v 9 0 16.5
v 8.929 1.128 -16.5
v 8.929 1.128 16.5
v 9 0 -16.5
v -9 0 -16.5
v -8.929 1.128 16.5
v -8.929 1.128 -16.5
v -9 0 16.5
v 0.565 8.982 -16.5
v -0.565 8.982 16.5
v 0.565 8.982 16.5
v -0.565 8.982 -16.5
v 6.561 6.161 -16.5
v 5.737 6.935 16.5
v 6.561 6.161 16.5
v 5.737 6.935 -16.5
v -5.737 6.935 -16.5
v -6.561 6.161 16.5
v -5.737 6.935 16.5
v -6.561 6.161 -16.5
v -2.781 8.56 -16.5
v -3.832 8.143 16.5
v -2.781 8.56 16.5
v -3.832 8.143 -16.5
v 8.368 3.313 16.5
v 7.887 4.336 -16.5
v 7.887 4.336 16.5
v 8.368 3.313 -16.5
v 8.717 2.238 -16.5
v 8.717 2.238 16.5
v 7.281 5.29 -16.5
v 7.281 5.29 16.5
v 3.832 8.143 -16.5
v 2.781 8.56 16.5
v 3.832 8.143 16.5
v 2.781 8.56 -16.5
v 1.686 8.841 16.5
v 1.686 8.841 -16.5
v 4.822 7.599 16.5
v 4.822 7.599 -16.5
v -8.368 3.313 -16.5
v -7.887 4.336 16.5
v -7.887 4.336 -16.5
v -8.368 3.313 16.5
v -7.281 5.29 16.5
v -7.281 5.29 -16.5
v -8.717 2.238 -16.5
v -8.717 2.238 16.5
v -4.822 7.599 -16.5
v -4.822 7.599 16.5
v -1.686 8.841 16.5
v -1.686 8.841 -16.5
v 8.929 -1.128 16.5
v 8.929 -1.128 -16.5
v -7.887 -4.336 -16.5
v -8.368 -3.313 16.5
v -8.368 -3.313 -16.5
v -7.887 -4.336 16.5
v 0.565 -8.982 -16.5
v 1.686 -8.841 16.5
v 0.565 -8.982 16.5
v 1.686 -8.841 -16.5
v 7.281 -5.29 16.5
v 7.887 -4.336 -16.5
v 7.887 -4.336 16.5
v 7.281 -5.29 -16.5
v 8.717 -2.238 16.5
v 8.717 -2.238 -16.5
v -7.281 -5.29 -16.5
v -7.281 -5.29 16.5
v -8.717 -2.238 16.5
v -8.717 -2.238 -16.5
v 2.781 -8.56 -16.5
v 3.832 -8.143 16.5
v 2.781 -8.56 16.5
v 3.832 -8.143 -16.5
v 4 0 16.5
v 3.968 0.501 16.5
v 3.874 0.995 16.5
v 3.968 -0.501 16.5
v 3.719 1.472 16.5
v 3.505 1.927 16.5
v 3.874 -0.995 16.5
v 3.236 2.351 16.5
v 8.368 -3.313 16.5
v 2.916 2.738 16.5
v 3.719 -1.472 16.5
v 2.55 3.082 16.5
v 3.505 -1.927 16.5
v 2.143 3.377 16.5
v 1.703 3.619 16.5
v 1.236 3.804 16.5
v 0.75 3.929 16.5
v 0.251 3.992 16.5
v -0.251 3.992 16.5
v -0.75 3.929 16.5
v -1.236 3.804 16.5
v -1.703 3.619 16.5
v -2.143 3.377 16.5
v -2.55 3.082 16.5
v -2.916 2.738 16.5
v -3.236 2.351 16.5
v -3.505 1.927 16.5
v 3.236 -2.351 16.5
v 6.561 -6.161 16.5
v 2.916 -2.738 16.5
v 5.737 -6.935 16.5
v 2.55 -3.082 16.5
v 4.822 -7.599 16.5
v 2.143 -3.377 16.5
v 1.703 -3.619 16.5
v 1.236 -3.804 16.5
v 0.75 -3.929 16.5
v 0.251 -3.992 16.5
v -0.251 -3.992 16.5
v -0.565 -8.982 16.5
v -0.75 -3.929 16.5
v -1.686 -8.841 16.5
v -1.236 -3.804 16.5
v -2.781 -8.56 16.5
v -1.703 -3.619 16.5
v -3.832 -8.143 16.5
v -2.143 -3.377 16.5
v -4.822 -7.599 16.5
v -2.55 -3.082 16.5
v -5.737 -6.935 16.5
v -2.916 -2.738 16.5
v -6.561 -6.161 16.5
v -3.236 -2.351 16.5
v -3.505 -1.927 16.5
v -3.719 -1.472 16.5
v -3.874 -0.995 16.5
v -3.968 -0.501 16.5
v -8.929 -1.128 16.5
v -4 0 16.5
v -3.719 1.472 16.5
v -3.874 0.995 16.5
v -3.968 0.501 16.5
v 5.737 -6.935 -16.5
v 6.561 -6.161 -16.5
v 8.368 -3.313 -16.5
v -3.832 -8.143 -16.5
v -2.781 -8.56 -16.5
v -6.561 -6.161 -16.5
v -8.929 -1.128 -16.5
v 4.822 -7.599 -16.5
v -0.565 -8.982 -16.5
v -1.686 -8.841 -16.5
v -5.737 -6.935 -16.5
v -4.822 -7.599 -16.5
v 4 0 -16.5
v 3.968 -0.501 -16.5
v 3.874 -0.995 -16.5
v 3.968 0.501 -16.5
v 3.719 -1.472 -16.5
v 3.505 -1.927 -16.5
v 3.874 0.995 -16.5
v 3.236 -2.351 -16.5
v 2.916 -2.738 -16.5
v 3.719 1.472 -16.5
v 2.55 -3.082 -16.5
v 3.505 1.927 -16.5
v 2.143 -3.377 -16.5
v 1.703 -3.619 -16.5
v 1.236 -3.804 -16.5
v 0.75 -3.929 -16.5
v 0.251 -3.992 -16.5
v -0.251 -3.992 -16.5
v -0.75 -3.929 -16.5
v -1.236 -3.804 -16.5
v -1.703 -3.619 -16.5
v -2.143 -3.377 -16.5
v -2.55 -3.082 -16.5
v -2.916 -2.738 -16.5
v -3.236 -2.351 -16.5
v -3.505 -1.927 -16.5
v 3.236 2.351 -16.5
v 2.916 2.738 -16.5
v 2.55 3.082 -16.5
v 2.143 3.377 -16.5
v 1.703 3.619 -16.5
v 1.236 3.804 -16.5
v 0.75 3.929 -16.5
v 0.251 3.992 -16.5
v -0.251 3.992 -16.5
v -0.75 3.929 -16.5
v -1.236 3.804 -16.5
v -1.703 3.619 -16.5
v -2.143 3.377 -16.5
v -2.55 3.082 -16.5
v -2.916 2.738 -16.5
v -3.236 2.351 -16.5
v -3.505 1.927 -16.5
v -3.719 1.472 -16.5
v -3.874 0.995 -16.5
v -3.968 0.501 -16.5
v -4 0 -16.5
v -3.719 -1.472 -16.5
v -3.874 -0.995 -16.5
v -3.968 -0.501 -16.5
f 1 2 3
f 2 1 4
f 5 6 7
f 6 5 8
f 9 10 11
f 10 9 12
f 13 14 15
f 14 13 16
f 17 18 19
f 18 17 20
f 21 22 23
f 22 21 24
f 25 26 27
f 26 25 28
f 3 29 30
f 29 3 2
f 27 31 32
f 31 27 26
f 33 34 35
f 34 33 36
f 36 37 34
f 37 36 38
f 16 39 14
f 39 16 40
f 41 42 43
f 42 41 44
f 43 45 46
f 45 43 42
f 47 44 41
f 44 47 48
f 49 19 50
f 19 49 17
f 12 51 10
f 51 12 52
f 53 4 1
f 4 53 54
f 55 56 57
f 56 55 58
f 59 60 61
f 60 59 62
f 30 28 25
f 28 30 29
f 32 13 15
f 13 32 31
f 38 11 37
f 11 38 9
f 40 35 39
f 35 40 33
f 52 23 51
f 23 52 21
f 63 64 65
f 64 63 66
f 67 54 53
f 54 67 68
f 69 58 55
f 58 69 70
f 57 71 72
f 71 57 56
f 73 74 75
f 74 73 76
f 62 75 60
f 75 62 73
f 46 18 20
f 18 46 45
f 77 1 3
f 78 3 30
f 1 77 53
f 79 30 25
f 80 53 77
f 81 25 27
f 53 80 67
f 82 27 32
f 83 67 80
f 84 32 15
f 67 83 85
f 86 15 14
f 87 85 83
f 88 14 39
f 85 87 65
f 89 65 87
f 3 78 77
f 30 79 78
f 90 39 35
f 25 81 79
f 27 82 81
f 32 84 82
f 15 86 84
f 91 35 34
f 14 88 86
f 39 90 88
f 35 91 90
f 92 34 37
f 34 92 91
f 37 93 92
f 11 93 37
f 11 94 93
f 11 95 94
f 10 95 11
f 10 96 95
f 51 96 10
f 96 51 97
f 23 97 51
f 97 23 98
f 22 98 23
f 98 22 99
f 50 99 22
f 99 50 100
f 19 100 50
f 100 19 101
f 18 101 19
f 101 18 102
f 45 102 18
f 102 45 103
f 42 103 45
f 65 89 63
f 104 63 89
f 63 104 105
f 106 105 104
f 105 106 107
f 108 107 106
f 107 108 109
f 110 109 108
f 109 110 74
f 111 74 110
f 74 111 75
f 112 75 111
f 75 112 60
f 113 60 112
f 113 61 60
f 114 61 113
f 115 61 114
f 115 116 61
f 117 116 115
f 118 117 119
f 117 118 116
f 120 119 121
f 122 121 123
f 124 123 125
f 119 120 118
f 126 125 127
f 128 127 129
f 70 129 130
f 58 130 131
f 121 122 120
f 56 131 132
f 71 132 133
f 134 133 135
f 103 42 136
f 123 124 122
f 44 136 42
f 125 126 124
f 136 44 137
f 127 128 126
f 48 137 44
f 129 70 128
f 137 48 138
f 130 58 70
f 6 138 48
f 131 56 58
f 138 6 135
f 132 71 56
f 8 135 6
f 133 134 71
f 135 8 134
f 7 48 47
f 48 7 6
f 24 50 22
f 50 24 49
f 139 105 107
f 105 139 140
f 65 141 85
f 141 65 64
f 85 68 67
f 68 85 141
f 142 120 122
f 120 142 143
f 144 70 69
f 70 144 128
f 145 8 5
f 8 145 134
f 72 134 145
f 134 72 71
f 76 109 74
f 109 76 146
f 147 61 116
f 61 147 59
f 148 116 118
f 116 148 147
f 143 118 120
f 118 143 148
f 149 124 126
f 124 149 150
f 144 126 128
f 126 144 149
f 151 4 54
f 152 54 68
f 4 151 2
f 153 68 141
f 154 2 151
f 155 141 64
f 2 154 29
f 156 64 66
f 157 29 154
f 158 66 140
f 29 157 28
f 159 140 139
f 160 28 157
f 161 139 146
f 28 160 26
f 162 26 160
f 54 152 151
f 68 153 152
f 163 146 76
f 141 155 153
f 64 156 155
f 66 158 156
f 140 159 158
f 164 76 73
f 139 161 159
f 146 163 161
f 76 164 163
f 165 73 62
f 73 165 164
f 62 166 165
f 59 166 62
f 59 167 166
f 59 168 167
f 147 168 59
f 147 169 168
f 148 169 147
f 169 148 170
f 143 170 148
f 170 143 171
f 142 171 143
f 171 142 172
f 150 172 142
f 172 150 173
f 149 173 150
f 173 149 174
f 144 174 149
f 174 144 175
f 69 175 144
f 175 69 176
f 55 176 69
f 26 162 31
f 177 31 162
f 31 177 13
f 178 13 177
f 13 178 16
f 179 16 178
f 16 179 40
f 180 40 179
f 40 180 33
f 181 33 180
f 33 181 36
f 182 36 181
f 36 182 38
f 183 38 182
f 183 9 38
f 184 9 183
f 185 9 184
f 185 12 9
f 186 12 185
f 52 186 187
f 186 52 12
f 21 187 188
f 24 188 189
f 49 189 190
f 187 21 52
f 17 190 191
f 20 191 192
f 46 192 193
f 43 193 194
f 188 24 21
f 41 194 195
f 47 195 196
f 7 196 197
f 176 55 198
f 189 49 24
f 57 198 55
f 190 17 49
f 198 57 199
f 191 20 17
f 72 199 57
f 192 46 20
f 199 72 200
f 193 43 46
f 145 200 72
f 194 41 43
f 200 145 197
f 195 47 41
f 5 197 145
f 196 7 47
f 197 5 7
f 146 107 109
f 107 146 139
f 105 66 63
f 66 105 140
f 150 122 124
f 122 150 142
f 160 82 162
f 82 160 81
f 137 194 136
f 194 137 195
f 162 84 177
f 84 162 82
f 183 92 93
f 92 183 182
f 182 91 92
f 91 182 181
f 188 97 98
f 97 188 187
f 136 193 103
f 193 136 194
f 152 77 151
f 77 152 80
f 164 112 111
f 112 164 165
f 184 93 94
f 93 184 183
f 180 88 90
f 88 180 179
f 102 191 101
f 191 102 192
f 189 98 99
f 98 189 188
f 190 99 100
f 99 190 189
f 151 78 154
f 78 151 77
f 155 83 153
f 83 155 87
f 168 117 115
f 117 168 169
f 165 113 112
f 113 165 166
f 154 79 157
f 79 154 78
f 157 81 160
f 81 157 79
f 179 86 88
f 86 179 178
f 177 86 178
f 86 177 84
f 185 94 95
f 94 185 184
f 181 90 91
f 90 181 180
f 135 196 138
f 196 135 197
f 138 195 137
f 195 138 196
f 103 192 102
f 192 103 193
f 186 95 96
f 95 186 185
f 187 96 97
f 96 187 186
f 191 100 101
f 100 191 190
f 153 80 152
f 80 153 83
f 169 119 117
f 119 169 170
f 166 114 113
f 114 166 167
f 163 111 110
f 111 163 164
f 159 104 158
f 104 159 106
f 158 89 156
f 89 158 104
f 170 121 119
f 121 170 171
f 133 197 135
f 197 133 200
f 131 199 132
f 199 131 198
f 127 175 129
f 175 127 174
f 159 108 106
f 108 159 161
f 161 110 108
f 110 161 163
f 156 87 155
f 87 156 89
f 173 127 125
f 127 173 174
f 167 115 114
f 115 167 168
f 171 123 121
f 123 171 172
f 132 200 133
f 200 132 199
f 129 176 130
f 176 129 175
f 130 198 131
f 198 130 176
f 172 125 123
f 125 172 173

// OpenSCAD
$fn = 50;


difference() {
	union() {
		translate(v = [0, 0, -16.5000000000]) {
			cylinder(h = 33, r = 9.0000000000);
		}
	}
	union() {
		translate(v = [0, 0, -100.0000000000]) {
			cylinder(h = 200, r = 4.0000000000);
		}
	}
}
